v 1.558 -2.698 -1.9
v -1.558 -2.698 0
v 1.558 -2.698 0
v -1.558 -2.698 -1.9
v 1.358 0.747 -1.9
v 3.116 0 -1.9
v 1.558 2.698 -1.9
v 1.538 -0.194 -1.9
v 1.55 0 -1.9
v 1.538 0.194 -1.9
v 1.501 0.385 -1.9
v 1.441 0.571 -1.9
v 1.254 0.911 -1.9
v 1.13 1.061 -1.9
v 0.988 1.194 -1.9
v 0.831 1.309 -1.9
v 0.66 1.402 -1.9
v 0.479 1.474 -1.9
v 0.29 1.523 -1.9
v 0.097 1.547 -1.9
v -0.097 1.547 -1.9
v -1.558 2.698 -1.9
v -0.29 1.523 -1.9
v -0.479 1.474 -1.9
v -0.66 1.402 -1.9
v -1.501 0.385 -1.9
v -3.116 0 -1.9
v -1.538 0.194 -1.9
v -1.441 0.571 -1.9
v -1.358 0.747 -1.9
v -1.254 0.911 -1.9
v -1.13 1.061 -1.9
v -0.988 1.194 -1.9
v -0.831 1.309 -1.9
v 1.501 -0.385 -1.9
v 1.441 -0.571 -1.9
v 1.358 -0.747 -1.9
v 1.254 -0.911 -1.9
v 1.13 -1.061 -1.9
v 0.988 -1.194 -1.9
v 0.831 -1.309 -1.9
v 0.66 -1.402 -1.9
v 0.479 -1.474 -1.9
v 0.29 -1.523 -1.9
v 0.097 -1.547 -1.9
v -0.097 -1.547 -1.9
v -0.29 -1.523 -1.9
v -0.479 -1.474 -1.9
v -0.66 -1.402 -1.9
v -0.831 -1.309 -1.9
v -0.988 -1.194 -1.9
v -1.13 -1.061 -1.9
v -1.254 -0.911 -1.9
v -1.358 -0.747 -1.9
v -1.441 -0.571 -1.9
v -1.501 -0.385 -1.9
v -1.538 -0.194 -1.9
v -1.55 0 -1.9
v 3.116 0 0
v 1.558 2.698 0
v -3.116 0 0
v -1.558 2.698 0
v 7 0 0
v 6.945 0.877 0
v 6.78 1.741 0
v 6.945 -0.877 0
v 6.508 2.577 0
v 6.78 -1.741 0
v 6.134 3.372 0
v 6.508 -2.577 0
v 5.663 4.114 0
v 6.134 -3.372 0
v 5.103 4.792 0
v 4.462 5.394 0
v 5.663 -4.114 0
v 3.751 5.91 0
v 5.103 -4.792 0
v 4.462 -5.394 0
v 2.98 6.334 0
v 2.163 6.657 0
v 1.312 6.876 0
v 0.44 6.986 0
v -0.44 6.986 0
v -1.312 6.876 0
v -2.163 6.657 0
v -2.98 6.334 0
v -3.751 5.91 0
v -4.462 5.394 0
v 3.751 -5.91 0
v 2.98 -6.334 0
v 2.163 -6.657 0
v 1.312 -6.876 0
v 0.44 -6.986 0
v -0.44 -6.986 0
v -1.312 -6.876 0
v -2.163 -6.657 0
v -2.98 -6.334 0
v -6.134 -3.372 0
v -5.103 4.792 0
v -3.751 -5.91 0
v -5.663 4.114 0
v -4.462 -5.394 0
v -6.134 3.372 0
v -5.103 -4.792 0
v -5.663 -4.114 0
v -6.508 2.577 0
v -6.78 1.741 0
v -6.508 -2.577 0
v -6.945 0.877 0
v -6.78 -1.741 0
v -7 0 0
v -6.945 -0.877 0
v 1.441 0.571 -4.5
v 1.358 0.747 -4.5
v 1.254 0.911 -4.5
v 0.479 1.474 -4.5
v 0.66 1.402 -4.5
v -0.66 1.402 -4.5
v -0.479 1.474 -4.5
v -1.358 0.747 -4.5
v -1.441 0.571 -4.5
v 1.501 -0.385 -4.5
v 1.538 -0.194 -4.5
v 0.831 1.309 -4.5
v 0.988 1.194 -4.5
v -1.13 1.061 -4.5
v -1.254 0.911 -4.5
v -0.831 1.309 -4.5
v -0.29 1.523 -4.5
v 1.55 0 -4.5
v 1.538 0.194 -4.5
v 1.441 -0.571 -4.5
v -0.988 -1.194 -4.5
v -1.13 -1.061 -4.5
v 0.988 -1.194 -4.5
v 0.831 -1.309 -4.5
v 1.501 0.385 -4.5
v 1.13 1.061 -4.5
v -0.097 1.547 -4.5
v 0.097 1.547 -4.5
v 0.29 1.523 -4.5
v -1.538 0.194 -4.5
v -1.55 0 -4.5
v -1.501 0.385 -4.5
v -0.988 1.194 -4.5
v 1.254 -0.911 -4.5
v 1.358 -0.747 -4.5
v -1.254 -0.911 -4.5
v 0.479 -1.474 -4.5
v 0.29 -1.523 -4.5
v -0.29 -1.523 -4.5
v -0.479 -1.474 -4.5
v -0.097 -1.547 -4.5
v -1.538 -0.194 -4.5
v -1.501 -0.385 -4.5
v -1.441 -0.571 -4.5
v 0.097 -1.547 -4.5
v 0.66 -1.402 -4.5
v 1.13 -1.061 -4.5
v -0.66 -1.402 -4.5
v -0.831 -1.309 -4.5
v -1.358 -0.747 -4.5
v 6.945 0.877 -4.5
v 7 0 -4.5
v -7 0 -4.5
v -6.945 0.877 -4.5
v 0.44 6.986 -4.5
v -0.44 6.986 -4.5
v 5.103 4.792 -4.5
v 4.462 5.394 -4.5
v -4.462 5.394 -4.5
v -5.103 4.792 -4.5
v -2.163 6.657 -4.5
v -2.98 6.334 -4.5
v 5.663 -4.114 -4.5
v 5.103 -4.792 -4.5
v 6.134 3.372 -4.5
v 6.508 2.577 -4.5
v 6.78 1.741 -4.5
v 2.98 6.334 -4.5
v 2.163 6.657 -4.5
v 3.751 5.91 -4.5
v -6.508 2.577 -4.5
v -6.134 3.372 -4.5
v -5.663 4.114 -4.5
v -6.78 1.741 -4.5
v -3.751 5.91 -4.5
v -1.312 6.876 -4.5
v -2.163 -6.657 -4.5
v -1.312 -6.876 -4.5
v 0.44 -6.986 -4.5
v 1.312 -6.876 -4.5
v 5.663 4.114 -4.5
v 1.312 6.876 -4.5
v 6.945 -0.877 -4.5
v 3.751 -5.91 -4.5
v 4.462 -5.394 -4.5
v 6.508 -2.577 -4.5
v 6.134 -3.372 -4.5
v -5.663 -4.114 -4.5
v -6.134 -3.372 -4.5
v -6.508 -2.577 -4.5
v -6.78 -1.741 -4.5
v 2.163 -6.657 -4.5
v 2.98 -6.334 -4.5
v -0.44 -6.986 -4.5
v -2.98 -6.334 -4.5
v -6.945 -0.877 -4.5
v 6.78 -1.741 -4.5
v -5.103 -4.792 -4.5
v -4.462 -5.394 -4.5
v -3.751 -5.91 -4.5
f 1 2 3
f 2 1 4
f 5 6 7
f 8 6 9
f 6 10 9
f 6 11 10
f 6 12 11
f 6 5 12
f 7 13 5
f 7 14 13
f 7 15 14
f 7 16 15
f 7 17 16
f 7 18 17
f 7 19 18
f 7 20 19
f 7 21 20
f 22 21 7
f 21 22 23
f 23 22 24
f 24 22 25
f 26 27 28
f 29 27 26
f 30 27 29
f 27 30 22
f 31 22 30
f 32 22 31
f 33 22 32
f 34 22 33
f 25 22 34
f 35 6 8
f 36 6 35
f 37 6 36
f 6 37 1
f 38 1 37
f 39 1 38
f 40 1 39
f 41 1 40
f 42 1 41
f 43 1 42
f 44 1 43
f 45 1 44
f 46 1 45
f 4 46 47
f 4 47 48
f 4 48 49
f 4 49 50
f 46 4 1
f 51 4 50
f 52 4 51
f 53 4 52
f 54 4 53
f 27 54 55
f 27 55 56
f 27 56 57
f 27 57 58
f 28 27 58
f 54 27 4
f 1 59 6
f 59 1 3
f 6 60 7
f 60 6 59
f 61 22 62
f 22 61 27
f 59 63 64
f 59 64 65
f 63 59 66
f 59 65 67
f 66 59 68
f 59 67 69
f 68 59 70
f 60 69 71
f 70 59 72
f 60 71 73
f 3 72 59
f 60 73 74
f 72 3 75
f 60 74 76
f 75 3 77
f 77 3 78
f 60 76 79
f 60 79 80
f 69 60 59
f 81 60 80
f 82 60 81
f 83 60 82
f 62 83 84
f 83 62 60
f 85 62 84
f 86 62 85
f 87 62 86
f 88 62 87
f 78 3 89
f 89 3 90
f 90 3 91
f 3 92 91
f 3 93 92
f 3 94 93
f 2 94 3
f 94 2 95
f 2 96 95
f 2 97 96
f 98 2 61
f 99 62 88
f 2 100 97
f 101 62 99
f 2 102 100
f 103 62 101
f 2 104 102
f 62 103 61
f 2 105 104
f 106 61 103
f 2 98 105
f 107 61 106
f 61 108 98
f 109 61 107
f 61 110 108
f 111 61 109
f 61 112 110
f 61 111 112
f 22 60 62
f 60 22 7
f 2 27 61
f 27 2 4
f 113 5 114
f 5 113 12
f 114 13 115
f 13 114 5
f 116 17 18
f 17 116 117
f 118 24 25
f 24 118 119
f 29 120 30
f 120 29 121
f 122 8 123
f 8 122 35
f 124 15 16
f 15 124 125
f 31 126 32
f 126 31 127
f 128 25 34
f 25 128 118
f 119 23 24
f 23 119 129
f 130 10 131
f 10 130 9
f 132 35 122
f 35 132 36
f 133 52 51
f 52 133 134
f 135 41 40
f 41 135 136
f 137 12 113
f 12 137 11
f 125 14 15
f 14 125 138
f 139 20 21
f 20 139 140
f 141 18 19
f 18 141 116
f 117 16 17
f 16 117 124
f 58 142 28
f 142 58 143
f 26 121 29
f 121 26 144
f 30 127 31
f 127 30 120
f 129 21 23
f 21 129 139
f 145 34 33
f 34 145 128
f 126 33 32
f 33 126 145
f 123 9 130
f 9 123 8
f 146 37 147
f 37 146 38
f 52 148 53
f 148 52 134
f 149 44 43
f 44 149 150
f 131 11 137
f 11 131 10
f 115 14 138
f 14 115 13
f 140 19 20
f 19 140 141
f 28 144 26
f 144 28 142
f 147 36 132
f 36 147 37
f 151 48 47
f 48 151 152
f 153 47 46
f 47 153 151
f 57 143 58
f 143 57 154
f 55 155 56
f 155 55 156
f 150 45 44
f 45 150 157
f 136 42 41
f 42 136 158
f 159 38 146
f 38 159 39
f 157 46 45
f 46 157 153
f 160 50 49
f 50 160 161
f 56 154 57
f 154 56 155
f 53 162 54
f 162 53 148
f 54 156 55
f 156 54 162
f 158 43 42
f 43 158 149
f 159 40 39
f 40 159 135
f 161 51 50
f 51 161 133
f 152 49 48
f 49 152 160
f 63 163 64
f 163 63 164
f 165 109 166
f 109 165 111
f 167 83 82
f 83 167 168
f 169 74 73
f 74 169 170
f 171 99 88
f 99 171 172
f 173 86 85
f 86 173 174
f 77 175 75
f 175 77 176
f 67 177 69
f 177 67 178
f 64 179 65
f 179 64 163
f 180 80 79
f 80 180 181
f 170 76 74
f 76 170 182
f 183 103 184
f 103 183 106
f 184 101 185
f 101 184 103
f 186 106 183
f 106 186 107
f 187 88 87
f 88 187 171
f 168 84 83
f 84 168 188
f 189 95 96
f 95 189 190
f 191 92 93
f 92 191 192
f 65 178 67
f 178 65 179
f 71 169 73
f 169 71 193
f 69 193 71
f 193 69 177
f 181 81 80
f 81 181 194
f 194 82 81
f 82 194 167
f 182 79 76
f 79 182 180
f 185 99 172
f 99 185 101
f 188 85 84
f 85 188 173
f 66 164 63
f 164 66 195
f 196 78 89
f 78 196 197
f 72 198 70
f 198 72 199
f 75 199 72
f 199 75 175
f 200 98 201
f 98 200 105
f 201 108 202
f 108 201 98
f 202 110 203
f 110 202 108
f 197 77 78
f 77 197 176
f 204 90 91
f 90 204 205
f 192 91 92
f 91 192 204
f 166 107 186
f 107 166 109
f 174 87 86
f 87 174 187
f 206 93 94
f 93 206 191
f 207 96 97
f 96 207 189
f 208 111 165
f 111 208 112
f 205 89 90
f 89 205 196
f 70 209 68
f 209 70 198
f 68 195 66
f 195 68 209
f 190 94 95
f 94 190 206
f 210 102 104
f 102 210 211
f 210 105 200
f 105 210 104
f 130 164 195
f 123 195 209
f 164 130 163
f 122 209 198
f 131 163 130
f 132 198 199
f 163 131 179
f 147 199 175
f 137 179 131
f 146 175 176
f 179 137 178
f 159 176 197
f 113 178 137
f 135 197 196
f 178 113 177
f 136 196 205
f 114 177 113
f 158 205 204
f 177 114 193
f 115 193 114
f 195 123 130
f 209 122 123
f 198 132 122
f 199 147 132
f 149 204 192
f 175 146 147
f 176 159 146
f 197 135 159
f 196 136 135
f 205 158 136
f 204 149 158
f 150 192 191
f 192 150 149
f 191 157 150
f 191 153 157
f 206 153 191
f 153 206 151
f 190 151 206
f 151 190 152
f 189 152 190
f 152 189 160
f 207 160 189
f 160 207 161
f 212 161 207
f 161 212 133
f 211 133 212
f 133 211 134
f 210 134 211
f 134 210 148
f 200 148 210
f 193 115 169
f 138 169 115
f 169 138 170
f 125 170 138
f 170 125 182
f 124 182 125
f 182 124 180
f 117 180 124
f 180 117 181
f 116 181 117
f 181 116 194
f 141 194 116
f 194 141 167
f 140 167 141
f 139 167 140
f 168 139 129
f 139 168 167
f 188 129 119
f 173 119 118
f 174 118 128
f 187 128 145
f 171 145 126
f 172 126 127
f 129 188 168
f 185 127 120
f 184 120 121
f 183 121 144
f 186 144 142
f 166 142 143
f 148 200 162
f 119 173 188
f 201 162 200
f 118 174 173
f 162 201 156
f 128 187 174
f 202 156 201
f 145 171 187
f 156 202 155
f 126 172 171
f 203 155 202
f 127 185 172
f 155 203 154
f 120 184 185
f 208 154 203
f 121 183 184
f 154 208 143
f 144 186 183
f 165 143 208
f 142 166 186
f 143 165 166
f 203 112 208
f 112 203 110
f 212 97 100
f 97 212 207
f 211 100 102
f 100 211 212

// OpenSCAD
$fn = 50;


difference() {
	union() {
		translate(v = [0, 0, -4.5000000000]) {
			cylinder(h = 4.5000000000, r = 7.0000000000);
		}
	}
	union() {
		translate(v = [0, 0, 0]) {
			rotate(a = [0, 0, 0]) {
				difference() {
					union() {
						translate(v = [0, 0, -1.9000000000]) {
							linear_extrude(height = 1.9000000000) {
								polygon(points = [[3.1158000000, 0.0000000000], [1.5579000000, 2.6983619531], [-1.5579000000, 2.6983619531], [-3.1158000000, 0.0000000000], [-1.5579000000, -2.6983619531], [1.5579000000, -2.6983619531]]);
							}
						}
					}
					union();
				}
			}
		}
		#translate(v = [0, 0, -100.0000000000]) {
			cylinder(h = 200, r = 1.5500000000);
		}
	}
}
